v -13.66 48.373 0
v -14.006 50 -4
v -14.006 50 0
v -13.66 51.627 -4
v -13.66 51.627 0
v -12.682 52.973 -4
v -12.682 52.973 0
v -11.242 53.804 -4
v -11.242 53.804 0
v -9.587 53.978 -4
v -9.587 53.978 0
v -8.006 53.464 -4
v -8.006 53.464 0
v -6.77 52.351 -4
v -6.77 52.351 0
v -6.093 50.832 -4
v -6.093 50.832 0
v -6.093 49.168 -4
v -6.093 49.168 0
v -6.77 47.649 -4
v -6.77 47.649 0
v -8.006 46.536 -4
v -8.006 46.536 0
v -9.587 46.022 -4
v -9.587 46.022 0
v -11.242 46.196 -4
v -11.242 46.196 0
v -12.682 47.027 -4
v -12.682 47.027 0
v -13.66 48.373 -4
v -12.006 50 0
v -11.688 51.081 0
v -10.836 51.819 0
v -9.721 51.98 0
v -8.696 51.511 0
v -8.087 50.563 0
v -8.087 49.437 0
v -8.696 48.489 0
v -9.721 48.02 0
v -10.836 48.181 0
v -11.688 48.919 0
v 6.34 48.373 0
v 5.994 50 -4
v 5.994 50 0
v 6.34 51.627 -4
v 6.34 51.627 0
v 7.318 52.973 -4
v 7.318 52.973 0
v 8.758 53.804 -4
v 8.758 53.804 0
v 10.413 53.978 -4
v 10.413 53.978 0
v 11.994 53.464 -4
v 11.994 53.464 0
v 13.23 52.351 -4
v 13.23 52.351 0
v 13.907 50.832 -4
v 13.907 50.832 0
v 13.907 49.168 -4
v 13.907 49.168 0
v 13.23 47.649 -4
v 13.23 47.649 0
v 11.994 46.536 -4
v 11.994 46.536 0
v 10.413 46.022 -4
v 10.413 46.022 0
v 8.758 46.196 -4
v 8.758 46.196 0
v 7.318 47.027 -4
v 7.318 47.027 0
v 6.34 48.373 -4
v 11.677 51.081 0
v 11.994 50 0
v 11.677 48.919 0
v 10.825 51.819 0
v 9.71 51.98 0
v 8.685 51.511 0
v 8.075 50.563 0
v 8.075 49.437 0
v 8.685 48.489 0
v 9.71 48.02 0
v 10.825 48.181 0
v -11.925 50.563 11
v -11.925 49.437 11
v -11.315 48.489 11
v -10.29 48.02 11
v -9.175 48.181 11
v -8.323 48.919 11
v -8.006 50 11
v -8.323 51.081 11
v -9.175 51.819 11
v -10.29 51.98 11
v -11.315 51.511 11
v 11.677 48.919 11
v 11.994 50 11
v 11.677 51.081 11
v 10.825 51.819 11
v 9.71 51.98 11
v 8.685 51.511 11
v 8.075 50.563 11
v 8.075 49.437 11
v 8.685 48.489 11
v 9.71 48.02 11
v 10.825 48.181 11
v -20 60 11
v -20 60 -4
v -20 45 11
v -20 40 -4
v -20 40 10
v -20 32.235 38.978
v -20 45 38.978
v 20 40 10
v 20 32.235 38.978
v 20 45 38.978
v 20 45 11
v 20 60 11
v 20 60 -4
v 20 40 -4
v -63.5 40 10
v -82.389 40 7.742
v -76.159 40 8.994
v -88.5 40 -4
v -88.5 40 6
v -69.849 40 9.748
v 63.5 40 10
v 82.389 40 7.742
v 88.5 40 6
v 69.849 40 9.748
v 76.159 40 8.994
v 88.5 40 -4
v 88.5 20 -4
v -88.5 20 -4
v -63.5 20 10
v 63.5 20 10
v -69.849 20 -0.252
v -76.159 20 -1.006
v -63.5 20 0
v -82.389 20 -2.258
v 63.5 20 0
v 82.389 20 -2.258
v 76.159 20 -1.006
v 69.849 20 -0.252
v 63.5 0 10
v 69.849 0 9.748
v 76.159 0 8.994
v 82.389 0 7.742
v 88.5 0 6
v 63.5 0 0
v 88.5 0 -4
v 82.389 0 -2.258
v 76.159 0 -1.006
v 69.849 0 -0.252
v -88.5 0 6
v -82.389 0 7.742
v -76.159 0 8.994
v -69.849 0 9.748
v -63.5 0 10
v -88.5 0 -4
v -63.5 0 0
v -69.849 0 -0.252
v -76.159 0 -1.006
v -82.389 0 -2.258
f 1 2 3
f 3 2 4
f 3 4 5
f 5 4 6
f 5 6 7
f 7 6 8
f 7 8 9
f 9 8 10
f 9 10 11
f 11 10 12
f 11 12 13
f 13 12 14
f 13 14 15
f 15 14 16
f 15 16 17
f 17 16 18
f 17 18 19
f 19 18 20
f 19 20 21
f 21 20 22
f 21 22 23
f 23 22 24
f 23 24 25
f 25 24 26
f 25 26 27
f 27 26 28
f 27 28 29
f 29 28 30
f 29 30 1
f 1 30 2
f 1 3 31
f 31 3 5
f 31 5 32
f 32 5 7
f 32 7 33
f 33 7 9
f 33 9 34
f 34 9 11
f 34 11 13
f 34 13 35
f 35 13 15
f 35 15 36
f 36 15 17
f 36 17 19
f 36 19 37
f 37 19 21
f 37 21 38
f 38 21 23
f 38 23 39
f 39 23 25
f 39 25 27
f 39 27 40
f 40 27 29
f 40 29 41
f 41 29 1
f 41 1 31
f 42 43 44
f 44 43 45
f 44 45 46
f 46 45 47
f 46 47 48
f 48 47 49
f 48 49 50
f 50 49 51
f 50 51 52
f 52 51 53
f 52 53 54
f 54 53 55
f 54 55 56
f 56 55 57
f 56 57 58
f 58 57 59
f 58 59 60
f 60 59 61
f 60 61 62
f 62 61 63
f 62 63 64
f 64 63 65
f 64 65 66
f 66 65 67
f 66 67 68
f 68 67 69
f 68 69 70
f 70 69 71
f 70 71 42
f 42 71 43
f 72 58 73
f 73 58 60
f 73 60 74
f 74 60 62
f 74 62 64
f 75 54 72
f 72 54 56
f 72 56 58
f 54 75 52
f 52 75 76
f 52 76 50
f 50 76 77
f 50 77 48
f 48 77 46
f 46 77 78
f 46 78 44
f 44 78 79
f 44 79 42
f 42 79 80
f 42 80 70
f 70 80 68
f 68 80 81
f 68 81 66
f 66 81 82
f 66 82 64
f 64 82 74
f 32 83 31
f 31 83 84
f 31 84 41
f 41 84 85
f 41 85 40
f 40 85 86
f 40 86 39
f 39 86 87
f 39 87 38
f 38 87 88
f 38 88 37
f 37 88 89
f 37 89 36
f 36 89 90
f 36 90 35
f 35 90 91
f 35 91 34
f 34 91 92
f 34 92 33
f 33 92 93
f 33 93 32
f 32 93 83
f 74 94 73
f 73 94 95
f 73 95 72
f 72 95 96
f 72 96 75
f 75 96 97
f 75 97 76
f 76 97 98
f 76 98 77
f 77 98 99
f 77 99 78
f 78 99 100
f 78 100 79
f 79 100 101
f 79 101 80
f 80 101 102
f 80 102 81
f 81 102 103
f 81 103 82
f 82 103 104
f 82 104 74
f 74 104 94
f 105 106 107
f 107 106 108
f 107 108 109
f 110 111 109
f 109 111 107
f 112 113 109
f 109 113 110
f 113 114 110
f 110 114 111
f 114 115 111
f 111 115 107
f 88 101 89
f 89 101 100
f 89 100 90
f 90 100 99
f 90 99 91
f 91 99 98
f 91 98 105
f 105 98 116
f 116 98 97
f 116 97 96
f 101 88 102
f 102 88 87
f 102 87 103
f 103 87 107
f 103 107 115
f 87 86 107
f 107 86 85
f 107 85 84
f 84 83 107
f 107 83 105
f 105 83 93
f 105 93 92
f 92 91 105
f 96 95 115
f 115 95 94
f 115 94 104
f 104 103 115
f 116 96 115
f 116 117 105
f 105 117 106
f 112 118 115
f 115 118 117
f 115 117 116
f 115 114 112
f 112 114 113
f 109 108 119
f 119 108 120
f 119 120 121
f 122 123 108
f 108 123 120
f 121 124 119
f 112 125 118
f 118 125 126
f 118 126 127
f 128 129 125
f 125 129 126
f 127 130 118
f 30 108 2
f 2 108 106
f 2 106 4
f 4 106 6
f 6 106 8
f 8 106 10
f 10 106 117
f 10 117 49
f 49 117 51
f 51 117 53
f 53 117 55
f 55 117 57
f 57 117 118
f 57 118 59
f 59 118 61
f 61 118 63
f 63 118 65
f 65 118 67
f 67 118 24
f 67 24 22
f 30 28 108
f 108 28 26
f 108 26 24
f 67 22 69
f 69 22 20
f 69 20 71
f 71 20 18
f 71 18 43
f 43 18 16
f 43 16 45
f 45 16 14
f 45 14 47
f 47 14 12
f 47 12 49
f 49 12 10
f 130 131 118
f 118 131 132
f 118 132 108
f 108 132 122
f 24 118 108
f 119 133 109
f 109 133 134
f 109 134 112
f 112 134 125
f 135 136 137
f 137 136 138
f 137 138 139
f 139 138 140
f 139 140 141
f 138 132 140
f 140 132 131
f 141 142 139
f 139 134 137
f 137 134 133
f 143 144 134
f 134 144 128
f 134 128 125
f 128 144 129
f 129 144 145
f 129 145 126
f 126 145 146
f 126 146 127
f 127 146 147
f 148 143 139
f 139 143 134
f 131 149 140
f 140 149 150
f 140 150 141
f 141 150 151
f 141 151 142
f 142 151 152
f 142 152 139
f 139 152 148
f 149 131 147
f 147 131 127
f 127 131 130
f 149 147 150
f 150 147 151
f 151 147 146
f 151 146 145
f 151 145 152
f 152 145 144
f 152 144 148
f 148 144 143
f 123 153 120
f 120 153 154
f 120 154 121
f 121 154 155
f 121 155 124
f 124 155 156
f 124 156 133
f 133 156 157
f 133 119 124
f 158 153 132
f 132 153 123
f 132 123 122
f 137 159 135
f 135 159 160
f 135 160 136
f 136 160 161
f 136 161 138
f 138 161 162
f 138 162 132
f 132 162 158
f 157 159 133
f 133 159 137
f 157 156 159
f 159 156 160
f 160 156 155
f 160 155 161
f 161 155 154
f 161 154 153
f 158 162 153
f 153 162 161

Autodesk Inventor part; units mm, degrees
ref_plane "YZ Plane" through (0, 0, 0) normal (1, 0, 0) x (0, 1, 0)
ref_plane "XZ Plane" through (0, 0, 0) normal (0, 1, 0) x (-1, 0, 0)
ref_plane "XY Plane" through (0, 0, 0) normal (0, 0, 1) x (1, 0, 0)
sketch "스케치1" plane through (0, 0, 0) normal (0, 1, 0) x (-1, 0, 0)
  line L0 (124.1226, 0) -> (-124.1226, 0) projected
  line L1 (0, -98.3487) -> (0, 29.2174) projected
  line L2 (63.5, 0) -> (-63.5, 0)
  arc A0 (88.5, -4) -> (63.5, 0) centre (63.5, -80.125) ccw
  line L3 (63.5, 0) -> (63.5, 10)
  line L4 (88.5, -4) -> (88.5, 6)
  arc A1 (88.5, 6) -> (63.5, 10) centre (63.5, -70.125) ccw
  line L5 (63.5, 10) -> (0, 10)
  arc A2 (-63.5, 0) -> (-88.5, -4) centre (-63.5, -80.125) ccw
  line L6 (-63.5, 0) -> (-63.5, 10)
  line L7 (-88.5, -4) -> (-88.5, 6)
  arc A3 (-63.5, 10) -> (-88.5, 6) centre (-63.5, -70.125) ccw
  point P0 (0, 0)
  dimension "d0" = 127
  dimension "d1" = 10
  dimension "d2" = 10
  dimension "d3" = 14
  dimension "d4" = 25
extrude "돌출1" add sketch "스케치1" along normal blind 20 contours L4 A0 L0 | A2 L7 L0 | L0 L7 A3 L6 | L0 L3 A1 L4
sketch "스케치2" plane through (0, 20, 0) normal (0, 1, 0) x (1, 0, 0)
  point P0 (0, 0)
sketch "스케치3" plane through (0, 20, 0) normal (0, 1, 0) x (1, 0, 0)
  line L0 (-63.5, -10) -> (-63.5, 0) projected
  arc A0 (-88.5, 4) -> (-63.5, 0) centre (-63.5, 80.125) ccw projected
  line L1 (-88.5, 4) -> (-88.5, -6) projected
  arc A1 (-88.5, -6) -> (-63.5, -10) centre (-63.5, 70.125) ccw projected
  line L2 (88.5, -6) -> (88.5, 4) projected
  arc A2 (63.5, 0) -> (88.5, 4) centre (63.5, 80.125) ccw projected
  line L3 (63.5, 0) -> (63.5, -10) projected
  arc A3 (63.5, -10) -> (88.5, -6) centre (63.5, 70.125) ccw projected
  line L4 (-63.5, -10) -> (63.5, -10)
  line L5 (63.5, -10) -> (63.5, 0)
  line L6 (63.5, 0) -> (-63.5, 0)
  line L7 (-63.5, 0) -> (-63.5, -10)
  line L8 (-88.5, 4) -> (88.5, 4)
  point P0 (0, 0)
extrude "돌출2" add sketch "스케치3" along normal blind 20
sketch "스케치4" plane through (0, 0, 0) normal (1, 0, 0) x (0, 1, 0)
  line L0 (40, 10) -> (32.2354, 38.9778)
  line L1 (40, 6) -> (40, 10) projected
  line L2 (40, -4) -> (60, -4)
  line L3 (32.2354, 38.9778) -> (45, 38.9778)
  line L4 (40, 6) -> (40, -4) projected
  line L5 (45, 38.9778) -> (45, 11)
  line L6 (60, 11) -> (60, -4)
  line L7 (0, 6) -> (40, 6) projected
  line L8 (60, 11) -> (45, 11)
  point P0 (0, 0)
  point P1 (20, 10)
  dimension "d9" = 165
  dimension "d11" = 30
  dimension "d12" = 20
  dimension "d13" = 5
  dimension "d16" = 15
extrude "돌출3" add sketch "스케치4" along normal mid plane 40
sketch "스케치5" plane through (88.5, 20, -4) normal (0, 0, -1) x (-1, 0, 0)
  line L0 (0, 0) -> (177, 0) projected
  line L1 (177, 0) -> (177, 20) projected
  line L2 (108.5, 20) -> (177, 20) projected
  line L3 (108.5, 40) -> (108.5, 20) projected
  line L4 (108.5, 40) -> (68.5, 40) projected
  line L5 (68.5, 20) -> (68.5, 40) projected
  line L6 (0, 20) -> (68.5, 20) projected
  line L7 (0, 0) -> (0, 20) projected
  line L8 (68.5, 30) -> (108.5, 30)
  circle A0 centre (78.5056, 30) radius 2
  circle A1 centre (98.5056, 30) radius 2
  point P0 (88.5, -20)
  dimension "d17" = 4
  dimension "d18" = 4
  dimension "d19" = 20
extrude "돌출4" cut sketch "스케치5" against normal blind 40 contours A0 L8 | L8 A0 | A1 L8 | L8 A1
sketch "스케치6" plane through (88.5, 20, -4) normal (0, 0, -1) x (-1, 0, 0)
  circle A0 centre (78.5056, 30) radius 2 projected
  circle A1 centre (98.5056, 30) radius 2 projected
  circle A2 centre (78.5056, 30) radius 4
  circle A3 centre (98.5056, 30) radius 4
  point P0 (88.5, -20)
  dimension "d22" = 8
  dimension "d23" = 8
extrude "돌출5" cut sketch "스케치6" against normal blind 4 contours A0 | A2 | A3
properties part number "라이다 고정"
